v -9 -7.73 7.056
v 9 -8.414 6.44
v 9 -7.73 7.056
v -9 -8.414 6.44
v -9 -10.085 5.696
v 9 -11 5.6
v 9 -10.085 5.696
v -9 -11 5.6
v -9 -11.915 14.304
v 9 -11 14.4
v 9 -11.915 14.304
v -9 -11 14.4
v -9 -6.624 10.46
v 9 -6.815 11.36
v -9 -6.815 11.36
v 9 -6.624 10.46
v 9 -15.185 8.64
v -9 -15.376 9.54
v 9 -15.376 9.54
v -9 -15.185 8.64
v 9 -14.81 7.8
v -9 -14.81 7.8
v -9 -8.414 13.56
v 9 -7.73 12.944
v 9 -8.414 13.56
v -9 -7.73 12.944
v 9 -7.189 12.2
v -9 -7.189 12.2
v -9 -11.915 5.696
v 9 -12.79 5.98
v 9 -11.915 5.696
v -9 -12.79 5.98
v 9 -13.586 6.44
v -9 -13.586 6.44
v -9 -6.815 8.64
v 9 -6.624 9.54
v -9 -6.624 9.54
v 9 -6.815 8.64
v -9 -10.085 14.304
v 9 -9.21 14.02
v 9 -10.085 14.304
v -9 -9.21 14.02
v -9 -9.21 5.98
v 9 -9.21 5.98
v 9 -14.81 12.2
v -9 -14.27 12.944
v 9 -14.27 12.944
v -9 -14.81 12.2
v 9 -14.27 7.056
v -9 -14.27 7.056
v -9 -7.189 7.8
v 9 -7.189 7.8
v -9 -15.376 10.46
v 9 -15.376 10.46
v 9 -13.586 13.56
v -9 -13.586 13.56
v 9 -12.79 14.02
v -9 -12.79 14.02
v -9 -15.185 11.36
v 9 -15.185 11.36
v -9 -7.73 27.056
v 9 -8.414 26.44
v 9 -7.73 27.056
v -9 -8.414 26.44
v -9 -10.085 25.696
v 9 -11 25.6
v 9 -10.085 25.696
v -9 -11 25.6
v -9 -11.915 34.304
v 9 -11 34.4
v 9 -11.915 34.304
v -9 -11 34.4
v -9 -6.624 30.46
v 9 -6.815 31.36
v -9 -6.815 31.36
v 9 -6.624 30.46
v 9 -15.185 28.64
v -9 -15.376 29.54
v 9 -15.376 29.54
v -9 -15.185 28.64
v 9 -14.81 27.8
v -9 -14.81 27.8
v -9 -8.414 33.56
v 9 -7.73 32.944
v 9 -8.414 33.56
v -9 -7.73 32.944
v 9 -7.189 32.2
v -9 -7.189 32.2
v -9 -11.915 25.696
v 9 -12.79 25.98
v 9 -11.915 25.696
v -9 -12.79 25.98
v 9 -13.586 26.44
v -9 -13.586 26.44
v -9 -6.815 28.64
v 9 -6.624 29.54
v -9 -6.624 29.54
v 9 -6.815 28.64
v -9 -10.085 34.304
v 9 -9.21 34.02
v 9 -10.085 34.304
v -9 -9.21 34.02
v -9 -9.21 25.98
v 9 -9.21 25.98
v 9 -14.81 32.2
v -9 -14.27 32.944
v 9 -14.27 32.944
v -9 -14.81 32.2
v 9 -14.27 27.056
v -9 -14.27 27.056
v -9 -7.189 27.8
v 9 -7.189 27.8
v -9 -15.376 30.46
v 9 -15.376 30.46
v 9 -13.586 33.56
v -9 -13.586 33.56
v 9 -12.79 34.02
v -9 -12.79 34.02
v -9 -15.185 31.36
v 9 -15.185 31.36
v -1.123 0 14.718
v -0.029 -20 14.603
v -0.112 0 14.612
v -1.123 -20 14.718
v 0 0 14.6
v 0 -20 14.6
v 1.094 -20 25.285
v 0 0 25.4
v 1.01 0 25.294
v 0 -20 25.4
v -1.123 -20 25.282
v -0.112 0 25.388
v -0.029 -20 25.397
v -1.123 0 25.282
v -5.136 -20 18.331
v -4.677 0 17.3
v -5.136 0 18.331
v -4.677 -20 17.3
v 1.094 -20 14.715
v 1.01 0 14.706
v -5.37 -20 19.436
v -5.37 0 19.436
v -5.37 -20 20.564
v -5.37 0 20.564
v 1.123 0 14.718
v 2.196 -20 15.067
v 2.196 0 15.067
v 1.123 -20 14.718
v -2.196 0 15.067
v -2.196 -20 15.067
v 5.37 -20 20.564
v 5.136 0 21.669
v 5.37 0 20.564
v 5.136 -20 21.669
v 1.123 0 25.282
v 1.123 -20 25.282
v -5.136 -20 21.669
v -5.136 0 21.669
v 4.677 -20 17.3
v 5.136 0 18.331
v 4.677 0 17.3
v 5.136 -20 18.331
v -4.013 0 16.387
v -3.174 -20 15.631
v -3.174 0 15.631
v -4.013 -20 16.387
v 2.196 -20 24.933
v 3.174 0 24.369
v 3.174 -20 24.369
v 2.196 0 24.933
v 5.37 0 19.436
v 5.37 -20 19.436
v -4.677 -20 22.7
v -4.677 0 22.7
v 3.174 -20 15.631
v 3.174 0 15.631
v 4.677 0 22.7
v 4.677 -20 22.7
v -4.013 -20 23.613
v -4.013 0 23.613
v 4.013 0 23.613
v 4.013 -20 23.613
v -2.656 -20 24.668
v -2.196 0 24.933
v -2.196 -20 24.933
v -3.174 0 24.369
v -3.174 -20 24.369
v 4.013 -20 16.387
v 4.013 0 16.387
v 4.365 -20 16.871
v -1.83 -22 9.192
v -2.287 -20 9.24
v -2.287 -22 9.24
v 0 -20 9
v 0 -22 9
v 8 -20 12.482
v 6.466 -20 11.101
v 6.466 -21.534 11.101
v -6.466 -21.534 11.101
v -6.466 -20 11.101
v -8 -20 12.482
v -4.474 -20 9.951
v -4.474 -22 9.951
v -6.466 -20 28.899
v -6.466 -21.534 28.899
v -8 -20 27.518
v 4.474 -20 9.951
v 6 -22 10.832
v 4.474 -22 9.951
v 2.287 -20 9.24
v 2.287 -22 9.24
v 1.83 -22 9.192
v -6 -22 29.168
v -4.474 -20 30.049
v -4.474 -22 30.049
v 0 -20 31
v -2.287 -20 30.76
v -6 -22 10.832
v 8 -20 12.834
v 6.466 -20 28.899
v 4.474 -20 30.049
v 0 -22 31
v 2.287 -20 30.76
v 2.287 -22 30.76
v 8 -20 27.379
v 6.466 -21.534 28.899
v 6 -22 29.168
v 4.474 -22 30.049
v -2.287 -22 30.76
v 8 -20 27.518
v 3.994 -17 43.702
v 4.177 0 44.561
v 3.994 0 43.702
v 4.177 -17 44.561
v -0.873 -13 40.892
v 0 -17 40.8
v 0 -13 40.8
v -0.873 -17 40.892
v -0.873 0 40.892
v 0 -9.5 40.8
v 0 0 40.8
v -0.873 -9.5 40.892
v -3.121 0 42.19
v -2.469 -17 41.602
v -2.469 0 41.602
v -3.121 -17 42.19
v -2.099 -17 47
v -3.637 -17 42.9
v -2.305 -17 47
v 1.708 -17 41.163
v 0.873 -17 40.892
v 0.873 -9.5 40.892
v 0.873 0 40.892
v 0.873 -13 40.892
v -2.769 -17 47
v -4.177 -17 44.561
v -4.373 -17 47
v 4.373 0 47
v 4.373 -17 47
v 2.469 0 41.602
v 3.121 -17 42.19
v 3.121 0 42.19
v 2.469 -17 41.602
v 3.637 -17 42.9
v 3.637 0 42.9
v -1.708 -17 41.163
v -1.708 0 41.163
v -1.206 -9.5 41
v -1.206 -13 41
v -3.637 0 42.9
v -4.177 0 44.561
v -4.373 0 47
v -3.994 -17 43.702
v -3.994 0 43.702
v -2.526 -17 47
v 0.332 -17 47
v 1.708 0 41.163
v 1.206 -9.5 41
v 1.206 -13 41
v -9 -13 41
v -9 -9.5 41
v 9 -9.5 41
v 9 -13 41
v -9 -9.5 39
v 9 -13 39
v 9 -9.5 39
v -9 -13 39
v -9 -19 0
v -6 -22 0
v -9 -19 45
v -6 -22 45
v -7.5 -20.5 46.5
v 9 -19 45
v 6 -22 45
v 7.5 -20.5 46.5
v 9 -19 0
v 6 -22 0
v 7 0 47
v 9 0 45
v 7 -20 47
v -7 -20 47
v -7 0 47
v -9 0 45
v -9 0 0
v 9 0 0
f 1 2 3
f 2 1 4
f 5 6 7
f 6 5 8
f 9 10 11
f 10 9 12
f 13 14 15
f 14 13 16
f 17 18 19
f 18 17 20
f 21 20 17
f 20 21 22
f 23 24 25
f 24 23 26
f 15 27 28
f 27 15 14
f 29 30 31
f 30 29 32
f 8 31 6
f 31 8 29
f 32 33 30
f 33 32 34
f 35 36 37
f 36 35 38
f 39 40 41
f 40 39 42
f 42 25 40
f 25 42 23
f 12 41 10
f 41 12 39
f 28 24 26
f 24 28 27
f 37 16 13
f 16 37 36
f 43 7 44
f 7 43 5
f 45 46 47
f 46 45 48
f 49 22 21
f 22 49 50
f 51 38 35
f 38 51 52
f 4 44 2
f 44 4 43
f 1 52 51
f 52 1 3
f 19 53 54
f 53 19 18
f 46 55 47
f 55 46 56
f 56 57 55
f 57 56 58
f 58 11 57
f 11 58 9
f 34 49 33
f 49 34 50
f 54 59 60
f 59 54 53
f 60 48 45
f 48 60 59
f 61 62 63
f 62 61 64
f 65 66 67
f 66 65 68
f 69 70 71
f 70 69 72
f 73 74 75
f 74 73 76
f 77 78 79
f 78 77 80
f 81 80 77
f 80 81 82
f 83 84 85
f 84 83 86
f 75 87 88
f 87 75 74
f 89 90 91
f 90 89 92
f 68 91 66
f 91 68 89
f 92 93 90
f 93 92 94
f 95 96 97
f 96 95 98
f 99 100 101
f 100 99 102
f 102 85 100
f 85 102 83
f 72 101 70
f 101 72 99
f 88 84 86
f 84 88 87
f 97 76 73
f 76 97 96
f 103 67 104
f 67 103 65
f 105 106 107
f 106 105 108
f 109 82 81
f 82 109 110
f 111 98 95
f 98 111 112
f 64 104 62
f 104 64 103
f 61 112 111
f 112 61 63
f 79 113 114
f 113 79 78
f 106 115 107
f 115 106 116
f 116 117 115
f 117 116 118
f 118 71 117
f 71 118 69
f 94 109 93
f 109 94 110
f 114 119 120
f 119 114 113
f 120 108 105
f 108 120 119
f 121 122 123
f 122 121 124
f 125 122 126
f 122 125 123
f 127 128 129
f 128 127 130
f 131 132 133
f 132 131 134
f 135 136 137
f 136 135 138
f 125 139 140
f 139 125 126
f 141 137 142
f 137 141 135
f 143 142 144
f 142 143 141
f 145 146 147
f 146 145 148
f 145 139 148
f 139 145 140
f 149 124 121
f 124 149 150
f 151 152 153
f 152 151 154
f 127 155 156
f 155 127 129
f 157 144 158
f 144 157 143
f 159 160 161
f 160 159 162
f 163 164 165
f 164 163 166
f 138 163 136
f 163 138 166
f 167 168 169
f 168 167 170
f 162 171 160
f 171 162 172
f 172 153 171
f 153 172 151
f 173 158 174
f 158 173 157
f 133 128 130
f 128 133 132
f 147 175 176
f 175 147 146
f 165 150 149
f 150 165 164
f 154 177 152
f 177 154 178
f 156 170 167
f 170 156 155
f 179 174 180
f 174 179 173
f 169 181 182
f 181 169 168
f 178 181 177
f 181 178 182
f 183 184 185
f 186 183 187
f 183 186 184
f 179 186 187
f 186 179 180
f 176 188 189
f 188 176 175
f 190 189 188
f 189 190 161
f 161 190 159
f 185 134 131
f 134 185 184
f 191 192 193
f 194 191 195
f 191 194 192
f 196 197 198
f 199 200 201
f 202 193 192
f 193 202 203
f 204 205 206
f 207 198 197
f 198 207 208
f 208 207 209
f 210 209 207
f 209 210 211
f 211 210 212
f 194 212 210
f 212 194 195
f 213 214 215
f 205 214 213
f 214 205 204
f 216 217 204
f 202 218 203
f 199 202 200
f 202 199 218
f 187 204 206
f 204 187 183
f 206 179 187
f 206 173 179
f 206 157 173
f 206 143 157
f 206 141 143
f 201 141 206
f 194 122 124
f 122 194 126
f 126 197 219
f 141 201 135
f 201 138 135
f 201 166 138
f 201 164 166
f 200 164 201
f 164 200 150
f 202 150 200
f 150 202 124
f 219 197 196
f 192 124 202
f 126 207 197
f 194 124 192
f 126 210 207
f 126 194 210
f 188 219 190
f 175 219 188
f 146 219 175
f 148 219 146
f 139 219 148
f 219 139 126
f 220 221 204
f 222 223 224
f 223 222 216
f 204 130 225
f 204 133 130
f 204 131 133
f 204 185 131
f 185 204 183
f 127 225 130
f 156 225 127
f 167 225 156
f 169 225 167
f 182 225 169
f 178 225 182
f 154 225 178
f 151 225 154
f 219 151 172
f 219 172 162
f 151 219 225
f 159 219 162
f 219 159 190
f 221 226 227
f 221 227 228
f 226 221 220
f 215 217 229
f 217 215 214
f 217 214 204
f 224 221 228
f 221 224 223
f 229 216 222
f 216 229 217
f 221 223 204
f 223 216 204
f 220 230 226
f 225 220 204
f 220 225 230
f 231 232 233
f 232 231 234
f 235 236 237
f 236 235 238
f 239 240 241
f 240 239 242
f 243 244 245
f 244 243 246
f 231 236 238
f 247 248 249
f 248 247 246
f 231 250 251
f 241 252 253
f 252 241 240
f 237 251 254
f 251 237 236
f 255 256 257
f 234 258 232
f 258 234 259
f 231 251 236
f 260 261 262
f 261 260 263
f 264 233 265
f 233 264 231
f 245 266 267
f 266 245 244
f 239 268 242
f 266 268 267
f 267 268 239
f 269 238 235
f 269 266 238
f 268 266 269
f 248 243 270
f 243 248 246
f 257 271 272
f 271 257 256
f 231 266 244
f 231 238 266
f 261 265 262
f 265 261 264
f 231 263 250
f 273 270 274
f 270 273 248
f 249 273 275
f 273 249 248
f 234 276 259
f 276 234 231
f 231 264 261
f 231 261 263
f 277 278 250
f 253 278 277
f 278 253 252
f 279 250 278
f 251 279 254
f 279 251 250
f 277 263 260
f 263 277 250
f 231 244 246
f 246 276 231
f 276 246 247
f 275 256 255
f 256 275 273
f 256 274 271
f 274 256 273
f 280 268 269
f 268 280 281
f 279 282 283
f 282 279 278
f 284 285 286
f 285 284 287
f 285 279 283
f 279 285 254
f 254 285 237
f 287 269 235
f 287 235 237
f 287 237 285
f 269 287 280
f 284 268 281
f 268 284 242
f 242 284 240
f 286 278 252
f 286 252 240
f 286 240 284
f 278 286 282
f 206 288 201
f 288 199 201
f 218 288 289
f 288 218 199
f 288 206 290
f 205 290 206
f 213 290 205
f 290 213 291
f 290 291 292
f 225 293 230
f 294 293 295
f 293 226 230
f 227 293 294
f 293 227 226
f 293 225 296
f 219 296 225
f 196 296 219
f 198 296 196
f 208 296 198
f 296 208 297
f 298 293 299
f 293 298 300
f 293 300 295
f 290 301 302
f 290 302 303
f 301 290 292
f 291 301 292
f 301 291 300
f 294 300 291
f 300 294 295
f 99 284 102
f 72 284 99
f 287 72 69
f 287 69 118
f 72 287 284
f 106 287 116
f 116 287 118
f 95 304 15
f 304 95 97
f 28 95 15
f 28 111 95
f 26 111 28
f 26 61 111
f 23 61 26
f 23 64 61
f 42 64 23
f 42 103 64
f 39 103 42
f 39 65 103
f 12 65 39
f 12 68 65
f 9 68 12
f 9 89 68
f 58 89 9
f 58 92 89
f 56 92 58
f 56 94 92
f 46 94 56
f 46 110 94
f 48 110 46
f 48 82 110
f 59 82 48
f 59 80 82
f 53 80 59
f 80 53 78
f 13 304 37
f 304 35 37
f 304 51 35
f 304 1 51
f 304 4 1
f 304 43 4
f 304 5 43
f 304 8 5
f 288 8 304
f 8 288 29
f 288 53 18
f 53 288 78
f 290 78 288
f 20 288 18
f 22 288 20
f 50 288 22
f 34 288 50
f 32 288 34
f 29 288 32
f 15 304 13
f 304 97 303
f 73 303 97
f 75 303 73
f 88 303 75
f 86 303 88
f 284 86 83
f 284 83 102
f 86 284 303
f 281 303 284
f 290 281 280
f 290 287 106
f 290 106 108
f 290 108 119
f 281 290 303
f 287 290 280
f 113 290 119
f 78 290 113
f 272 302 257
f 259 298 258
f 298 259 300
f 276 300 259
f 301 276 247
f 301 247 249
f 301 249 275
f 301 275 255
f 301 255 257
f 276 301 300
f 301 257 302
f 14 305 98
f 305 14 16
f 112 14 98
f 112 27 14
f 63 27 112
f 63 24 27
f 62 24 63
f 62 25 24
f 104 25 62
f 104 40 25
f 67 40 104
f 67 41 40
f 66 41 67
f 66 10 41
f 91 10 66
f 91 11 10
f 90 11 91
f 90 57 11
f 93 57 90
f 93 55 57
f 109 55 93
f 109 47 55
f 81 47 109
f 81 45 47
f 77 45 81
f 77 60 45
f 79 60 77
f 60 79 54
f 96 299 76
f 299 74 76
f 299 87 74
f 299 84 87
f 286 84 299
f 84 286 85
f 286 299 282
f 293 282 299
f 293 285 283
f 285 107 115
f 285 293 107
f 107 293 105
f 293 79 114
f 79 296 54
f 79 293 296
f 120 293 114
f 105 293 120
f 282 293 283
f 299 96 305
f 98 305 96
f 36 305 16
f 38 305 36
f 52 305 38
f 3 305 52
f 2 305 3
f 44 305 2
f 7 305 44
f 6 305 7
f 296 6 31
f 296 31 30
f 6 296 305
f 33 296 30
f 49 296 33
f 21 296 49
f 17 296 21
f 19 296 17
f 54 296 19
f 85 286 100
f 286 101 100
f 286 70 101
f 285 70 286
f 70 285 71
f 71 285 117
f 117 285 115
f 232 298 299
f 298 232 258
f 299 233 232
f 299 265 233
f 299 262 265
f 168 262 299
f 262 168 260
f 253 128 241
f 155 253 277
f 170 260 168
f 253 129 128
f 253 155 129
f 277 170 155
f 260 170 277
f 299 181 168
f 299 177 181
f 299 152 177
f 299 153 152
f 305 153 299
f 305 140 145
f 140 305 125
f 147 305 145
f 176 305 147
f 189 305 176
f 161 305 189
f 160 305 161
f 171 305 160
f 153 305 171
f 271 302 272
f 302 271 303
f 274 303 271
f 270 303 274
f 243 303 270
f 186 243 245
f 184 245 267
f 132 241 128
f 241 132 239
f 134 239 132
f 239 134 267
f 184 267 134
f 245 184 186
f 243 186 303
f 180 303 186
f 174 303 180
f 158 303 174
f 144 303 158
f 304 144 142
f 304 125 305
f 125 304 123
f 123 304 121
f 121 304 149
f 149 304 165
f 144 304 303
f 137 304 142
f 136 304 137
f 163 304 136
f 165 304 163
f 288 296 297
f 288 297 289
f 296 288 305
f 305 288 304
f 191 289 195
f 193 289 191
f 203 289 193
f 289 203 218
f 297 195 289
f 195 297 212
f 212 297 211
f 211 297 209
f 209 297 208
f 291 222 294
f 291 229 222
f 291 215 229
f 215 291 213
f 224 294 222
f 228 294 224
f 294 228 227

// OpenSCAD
// PRUSA iteration3
// Y frame corners
// GNU GPL v3
// Josef Průša <iam@josefprusa.cz> and contributors
// http://www.reprap.org/wiki/Prusa_Mendel
// http://prusamendel.org

module corner_holes()
{
  translate([-11,-11,0]) {
    // Bottom hole
    translate([0,11,10]) rotate([0,90,0]) translate([0,0,-5]) cylinder(h=270, r=4.4, $fn=30);
    // Top hole
    translate([0,11,30]) rotate([0,90,0]) translate([0,0,-5]) cylinder(h=270, r=4.4, $fn=30);
    // Middle hole
    translate([11,0,20]) rotate([0,0,90]) rotate([0,90,0]) translate([0,0,-5]) cylinder(h=270, r=5.4, $fn=30);

    // Washer hole
    translate([11,-3,20]) rotate([0,0,90]) rotate([0,90,0]) translate([0,0,-5]) cylinder(h=10, r=11, $fn=30);

    // Top smooth rod insert
    // Smooth rod place
    hull() {
      translate([11,5,45]) rotate([0,90,90]) cylinder(h=30, r=4.2, $fn=30);
      translate([11,5,45+10]) rotate([0,90,90]) cylinder(h=30, r=5, $fn=30);
    }
    // Ziptie
    translate([-5,9,39])  cube([30,3.5,2]);
  }
}

module corner_fancy()
{
  // Side corner cutouts
  translate([-8,-9,0]) rotate([0,0,-45-180]) translate([-15,0,-1]) cube([30,30,51]);
  translate([8,-9,0]) rotate([0,0,45-180]) translate([-15,0,-1]) cube([30,30,51]);

  // Top corner cutouts
  translate([7,0,49-2]) rotate([0,45,0]) translate([-15,-15,0]) cube([30,30,30]);
  translate([-7,0,49-2]) rotate([0,-45,0]) translate([-15,-15,0]) cube([30,30,30]);
  rotate([0,0,90]) {
    translate([-9,0,49-2]) rotate([0,-45,0]) translate([-15,-15,0]) cube([30,30,30]);
  }
}


// Final part
module y_corners()
{
  // Rotate the part for better printing
  rotate([90,0,0]) translate([0,0,11]) rotate([-90,0,0]) difference() {
    translate([-9,-11,0]) cube([18,22,47]);
    corner_holes();
    corner_fancy();
  }
}

y_corners();
